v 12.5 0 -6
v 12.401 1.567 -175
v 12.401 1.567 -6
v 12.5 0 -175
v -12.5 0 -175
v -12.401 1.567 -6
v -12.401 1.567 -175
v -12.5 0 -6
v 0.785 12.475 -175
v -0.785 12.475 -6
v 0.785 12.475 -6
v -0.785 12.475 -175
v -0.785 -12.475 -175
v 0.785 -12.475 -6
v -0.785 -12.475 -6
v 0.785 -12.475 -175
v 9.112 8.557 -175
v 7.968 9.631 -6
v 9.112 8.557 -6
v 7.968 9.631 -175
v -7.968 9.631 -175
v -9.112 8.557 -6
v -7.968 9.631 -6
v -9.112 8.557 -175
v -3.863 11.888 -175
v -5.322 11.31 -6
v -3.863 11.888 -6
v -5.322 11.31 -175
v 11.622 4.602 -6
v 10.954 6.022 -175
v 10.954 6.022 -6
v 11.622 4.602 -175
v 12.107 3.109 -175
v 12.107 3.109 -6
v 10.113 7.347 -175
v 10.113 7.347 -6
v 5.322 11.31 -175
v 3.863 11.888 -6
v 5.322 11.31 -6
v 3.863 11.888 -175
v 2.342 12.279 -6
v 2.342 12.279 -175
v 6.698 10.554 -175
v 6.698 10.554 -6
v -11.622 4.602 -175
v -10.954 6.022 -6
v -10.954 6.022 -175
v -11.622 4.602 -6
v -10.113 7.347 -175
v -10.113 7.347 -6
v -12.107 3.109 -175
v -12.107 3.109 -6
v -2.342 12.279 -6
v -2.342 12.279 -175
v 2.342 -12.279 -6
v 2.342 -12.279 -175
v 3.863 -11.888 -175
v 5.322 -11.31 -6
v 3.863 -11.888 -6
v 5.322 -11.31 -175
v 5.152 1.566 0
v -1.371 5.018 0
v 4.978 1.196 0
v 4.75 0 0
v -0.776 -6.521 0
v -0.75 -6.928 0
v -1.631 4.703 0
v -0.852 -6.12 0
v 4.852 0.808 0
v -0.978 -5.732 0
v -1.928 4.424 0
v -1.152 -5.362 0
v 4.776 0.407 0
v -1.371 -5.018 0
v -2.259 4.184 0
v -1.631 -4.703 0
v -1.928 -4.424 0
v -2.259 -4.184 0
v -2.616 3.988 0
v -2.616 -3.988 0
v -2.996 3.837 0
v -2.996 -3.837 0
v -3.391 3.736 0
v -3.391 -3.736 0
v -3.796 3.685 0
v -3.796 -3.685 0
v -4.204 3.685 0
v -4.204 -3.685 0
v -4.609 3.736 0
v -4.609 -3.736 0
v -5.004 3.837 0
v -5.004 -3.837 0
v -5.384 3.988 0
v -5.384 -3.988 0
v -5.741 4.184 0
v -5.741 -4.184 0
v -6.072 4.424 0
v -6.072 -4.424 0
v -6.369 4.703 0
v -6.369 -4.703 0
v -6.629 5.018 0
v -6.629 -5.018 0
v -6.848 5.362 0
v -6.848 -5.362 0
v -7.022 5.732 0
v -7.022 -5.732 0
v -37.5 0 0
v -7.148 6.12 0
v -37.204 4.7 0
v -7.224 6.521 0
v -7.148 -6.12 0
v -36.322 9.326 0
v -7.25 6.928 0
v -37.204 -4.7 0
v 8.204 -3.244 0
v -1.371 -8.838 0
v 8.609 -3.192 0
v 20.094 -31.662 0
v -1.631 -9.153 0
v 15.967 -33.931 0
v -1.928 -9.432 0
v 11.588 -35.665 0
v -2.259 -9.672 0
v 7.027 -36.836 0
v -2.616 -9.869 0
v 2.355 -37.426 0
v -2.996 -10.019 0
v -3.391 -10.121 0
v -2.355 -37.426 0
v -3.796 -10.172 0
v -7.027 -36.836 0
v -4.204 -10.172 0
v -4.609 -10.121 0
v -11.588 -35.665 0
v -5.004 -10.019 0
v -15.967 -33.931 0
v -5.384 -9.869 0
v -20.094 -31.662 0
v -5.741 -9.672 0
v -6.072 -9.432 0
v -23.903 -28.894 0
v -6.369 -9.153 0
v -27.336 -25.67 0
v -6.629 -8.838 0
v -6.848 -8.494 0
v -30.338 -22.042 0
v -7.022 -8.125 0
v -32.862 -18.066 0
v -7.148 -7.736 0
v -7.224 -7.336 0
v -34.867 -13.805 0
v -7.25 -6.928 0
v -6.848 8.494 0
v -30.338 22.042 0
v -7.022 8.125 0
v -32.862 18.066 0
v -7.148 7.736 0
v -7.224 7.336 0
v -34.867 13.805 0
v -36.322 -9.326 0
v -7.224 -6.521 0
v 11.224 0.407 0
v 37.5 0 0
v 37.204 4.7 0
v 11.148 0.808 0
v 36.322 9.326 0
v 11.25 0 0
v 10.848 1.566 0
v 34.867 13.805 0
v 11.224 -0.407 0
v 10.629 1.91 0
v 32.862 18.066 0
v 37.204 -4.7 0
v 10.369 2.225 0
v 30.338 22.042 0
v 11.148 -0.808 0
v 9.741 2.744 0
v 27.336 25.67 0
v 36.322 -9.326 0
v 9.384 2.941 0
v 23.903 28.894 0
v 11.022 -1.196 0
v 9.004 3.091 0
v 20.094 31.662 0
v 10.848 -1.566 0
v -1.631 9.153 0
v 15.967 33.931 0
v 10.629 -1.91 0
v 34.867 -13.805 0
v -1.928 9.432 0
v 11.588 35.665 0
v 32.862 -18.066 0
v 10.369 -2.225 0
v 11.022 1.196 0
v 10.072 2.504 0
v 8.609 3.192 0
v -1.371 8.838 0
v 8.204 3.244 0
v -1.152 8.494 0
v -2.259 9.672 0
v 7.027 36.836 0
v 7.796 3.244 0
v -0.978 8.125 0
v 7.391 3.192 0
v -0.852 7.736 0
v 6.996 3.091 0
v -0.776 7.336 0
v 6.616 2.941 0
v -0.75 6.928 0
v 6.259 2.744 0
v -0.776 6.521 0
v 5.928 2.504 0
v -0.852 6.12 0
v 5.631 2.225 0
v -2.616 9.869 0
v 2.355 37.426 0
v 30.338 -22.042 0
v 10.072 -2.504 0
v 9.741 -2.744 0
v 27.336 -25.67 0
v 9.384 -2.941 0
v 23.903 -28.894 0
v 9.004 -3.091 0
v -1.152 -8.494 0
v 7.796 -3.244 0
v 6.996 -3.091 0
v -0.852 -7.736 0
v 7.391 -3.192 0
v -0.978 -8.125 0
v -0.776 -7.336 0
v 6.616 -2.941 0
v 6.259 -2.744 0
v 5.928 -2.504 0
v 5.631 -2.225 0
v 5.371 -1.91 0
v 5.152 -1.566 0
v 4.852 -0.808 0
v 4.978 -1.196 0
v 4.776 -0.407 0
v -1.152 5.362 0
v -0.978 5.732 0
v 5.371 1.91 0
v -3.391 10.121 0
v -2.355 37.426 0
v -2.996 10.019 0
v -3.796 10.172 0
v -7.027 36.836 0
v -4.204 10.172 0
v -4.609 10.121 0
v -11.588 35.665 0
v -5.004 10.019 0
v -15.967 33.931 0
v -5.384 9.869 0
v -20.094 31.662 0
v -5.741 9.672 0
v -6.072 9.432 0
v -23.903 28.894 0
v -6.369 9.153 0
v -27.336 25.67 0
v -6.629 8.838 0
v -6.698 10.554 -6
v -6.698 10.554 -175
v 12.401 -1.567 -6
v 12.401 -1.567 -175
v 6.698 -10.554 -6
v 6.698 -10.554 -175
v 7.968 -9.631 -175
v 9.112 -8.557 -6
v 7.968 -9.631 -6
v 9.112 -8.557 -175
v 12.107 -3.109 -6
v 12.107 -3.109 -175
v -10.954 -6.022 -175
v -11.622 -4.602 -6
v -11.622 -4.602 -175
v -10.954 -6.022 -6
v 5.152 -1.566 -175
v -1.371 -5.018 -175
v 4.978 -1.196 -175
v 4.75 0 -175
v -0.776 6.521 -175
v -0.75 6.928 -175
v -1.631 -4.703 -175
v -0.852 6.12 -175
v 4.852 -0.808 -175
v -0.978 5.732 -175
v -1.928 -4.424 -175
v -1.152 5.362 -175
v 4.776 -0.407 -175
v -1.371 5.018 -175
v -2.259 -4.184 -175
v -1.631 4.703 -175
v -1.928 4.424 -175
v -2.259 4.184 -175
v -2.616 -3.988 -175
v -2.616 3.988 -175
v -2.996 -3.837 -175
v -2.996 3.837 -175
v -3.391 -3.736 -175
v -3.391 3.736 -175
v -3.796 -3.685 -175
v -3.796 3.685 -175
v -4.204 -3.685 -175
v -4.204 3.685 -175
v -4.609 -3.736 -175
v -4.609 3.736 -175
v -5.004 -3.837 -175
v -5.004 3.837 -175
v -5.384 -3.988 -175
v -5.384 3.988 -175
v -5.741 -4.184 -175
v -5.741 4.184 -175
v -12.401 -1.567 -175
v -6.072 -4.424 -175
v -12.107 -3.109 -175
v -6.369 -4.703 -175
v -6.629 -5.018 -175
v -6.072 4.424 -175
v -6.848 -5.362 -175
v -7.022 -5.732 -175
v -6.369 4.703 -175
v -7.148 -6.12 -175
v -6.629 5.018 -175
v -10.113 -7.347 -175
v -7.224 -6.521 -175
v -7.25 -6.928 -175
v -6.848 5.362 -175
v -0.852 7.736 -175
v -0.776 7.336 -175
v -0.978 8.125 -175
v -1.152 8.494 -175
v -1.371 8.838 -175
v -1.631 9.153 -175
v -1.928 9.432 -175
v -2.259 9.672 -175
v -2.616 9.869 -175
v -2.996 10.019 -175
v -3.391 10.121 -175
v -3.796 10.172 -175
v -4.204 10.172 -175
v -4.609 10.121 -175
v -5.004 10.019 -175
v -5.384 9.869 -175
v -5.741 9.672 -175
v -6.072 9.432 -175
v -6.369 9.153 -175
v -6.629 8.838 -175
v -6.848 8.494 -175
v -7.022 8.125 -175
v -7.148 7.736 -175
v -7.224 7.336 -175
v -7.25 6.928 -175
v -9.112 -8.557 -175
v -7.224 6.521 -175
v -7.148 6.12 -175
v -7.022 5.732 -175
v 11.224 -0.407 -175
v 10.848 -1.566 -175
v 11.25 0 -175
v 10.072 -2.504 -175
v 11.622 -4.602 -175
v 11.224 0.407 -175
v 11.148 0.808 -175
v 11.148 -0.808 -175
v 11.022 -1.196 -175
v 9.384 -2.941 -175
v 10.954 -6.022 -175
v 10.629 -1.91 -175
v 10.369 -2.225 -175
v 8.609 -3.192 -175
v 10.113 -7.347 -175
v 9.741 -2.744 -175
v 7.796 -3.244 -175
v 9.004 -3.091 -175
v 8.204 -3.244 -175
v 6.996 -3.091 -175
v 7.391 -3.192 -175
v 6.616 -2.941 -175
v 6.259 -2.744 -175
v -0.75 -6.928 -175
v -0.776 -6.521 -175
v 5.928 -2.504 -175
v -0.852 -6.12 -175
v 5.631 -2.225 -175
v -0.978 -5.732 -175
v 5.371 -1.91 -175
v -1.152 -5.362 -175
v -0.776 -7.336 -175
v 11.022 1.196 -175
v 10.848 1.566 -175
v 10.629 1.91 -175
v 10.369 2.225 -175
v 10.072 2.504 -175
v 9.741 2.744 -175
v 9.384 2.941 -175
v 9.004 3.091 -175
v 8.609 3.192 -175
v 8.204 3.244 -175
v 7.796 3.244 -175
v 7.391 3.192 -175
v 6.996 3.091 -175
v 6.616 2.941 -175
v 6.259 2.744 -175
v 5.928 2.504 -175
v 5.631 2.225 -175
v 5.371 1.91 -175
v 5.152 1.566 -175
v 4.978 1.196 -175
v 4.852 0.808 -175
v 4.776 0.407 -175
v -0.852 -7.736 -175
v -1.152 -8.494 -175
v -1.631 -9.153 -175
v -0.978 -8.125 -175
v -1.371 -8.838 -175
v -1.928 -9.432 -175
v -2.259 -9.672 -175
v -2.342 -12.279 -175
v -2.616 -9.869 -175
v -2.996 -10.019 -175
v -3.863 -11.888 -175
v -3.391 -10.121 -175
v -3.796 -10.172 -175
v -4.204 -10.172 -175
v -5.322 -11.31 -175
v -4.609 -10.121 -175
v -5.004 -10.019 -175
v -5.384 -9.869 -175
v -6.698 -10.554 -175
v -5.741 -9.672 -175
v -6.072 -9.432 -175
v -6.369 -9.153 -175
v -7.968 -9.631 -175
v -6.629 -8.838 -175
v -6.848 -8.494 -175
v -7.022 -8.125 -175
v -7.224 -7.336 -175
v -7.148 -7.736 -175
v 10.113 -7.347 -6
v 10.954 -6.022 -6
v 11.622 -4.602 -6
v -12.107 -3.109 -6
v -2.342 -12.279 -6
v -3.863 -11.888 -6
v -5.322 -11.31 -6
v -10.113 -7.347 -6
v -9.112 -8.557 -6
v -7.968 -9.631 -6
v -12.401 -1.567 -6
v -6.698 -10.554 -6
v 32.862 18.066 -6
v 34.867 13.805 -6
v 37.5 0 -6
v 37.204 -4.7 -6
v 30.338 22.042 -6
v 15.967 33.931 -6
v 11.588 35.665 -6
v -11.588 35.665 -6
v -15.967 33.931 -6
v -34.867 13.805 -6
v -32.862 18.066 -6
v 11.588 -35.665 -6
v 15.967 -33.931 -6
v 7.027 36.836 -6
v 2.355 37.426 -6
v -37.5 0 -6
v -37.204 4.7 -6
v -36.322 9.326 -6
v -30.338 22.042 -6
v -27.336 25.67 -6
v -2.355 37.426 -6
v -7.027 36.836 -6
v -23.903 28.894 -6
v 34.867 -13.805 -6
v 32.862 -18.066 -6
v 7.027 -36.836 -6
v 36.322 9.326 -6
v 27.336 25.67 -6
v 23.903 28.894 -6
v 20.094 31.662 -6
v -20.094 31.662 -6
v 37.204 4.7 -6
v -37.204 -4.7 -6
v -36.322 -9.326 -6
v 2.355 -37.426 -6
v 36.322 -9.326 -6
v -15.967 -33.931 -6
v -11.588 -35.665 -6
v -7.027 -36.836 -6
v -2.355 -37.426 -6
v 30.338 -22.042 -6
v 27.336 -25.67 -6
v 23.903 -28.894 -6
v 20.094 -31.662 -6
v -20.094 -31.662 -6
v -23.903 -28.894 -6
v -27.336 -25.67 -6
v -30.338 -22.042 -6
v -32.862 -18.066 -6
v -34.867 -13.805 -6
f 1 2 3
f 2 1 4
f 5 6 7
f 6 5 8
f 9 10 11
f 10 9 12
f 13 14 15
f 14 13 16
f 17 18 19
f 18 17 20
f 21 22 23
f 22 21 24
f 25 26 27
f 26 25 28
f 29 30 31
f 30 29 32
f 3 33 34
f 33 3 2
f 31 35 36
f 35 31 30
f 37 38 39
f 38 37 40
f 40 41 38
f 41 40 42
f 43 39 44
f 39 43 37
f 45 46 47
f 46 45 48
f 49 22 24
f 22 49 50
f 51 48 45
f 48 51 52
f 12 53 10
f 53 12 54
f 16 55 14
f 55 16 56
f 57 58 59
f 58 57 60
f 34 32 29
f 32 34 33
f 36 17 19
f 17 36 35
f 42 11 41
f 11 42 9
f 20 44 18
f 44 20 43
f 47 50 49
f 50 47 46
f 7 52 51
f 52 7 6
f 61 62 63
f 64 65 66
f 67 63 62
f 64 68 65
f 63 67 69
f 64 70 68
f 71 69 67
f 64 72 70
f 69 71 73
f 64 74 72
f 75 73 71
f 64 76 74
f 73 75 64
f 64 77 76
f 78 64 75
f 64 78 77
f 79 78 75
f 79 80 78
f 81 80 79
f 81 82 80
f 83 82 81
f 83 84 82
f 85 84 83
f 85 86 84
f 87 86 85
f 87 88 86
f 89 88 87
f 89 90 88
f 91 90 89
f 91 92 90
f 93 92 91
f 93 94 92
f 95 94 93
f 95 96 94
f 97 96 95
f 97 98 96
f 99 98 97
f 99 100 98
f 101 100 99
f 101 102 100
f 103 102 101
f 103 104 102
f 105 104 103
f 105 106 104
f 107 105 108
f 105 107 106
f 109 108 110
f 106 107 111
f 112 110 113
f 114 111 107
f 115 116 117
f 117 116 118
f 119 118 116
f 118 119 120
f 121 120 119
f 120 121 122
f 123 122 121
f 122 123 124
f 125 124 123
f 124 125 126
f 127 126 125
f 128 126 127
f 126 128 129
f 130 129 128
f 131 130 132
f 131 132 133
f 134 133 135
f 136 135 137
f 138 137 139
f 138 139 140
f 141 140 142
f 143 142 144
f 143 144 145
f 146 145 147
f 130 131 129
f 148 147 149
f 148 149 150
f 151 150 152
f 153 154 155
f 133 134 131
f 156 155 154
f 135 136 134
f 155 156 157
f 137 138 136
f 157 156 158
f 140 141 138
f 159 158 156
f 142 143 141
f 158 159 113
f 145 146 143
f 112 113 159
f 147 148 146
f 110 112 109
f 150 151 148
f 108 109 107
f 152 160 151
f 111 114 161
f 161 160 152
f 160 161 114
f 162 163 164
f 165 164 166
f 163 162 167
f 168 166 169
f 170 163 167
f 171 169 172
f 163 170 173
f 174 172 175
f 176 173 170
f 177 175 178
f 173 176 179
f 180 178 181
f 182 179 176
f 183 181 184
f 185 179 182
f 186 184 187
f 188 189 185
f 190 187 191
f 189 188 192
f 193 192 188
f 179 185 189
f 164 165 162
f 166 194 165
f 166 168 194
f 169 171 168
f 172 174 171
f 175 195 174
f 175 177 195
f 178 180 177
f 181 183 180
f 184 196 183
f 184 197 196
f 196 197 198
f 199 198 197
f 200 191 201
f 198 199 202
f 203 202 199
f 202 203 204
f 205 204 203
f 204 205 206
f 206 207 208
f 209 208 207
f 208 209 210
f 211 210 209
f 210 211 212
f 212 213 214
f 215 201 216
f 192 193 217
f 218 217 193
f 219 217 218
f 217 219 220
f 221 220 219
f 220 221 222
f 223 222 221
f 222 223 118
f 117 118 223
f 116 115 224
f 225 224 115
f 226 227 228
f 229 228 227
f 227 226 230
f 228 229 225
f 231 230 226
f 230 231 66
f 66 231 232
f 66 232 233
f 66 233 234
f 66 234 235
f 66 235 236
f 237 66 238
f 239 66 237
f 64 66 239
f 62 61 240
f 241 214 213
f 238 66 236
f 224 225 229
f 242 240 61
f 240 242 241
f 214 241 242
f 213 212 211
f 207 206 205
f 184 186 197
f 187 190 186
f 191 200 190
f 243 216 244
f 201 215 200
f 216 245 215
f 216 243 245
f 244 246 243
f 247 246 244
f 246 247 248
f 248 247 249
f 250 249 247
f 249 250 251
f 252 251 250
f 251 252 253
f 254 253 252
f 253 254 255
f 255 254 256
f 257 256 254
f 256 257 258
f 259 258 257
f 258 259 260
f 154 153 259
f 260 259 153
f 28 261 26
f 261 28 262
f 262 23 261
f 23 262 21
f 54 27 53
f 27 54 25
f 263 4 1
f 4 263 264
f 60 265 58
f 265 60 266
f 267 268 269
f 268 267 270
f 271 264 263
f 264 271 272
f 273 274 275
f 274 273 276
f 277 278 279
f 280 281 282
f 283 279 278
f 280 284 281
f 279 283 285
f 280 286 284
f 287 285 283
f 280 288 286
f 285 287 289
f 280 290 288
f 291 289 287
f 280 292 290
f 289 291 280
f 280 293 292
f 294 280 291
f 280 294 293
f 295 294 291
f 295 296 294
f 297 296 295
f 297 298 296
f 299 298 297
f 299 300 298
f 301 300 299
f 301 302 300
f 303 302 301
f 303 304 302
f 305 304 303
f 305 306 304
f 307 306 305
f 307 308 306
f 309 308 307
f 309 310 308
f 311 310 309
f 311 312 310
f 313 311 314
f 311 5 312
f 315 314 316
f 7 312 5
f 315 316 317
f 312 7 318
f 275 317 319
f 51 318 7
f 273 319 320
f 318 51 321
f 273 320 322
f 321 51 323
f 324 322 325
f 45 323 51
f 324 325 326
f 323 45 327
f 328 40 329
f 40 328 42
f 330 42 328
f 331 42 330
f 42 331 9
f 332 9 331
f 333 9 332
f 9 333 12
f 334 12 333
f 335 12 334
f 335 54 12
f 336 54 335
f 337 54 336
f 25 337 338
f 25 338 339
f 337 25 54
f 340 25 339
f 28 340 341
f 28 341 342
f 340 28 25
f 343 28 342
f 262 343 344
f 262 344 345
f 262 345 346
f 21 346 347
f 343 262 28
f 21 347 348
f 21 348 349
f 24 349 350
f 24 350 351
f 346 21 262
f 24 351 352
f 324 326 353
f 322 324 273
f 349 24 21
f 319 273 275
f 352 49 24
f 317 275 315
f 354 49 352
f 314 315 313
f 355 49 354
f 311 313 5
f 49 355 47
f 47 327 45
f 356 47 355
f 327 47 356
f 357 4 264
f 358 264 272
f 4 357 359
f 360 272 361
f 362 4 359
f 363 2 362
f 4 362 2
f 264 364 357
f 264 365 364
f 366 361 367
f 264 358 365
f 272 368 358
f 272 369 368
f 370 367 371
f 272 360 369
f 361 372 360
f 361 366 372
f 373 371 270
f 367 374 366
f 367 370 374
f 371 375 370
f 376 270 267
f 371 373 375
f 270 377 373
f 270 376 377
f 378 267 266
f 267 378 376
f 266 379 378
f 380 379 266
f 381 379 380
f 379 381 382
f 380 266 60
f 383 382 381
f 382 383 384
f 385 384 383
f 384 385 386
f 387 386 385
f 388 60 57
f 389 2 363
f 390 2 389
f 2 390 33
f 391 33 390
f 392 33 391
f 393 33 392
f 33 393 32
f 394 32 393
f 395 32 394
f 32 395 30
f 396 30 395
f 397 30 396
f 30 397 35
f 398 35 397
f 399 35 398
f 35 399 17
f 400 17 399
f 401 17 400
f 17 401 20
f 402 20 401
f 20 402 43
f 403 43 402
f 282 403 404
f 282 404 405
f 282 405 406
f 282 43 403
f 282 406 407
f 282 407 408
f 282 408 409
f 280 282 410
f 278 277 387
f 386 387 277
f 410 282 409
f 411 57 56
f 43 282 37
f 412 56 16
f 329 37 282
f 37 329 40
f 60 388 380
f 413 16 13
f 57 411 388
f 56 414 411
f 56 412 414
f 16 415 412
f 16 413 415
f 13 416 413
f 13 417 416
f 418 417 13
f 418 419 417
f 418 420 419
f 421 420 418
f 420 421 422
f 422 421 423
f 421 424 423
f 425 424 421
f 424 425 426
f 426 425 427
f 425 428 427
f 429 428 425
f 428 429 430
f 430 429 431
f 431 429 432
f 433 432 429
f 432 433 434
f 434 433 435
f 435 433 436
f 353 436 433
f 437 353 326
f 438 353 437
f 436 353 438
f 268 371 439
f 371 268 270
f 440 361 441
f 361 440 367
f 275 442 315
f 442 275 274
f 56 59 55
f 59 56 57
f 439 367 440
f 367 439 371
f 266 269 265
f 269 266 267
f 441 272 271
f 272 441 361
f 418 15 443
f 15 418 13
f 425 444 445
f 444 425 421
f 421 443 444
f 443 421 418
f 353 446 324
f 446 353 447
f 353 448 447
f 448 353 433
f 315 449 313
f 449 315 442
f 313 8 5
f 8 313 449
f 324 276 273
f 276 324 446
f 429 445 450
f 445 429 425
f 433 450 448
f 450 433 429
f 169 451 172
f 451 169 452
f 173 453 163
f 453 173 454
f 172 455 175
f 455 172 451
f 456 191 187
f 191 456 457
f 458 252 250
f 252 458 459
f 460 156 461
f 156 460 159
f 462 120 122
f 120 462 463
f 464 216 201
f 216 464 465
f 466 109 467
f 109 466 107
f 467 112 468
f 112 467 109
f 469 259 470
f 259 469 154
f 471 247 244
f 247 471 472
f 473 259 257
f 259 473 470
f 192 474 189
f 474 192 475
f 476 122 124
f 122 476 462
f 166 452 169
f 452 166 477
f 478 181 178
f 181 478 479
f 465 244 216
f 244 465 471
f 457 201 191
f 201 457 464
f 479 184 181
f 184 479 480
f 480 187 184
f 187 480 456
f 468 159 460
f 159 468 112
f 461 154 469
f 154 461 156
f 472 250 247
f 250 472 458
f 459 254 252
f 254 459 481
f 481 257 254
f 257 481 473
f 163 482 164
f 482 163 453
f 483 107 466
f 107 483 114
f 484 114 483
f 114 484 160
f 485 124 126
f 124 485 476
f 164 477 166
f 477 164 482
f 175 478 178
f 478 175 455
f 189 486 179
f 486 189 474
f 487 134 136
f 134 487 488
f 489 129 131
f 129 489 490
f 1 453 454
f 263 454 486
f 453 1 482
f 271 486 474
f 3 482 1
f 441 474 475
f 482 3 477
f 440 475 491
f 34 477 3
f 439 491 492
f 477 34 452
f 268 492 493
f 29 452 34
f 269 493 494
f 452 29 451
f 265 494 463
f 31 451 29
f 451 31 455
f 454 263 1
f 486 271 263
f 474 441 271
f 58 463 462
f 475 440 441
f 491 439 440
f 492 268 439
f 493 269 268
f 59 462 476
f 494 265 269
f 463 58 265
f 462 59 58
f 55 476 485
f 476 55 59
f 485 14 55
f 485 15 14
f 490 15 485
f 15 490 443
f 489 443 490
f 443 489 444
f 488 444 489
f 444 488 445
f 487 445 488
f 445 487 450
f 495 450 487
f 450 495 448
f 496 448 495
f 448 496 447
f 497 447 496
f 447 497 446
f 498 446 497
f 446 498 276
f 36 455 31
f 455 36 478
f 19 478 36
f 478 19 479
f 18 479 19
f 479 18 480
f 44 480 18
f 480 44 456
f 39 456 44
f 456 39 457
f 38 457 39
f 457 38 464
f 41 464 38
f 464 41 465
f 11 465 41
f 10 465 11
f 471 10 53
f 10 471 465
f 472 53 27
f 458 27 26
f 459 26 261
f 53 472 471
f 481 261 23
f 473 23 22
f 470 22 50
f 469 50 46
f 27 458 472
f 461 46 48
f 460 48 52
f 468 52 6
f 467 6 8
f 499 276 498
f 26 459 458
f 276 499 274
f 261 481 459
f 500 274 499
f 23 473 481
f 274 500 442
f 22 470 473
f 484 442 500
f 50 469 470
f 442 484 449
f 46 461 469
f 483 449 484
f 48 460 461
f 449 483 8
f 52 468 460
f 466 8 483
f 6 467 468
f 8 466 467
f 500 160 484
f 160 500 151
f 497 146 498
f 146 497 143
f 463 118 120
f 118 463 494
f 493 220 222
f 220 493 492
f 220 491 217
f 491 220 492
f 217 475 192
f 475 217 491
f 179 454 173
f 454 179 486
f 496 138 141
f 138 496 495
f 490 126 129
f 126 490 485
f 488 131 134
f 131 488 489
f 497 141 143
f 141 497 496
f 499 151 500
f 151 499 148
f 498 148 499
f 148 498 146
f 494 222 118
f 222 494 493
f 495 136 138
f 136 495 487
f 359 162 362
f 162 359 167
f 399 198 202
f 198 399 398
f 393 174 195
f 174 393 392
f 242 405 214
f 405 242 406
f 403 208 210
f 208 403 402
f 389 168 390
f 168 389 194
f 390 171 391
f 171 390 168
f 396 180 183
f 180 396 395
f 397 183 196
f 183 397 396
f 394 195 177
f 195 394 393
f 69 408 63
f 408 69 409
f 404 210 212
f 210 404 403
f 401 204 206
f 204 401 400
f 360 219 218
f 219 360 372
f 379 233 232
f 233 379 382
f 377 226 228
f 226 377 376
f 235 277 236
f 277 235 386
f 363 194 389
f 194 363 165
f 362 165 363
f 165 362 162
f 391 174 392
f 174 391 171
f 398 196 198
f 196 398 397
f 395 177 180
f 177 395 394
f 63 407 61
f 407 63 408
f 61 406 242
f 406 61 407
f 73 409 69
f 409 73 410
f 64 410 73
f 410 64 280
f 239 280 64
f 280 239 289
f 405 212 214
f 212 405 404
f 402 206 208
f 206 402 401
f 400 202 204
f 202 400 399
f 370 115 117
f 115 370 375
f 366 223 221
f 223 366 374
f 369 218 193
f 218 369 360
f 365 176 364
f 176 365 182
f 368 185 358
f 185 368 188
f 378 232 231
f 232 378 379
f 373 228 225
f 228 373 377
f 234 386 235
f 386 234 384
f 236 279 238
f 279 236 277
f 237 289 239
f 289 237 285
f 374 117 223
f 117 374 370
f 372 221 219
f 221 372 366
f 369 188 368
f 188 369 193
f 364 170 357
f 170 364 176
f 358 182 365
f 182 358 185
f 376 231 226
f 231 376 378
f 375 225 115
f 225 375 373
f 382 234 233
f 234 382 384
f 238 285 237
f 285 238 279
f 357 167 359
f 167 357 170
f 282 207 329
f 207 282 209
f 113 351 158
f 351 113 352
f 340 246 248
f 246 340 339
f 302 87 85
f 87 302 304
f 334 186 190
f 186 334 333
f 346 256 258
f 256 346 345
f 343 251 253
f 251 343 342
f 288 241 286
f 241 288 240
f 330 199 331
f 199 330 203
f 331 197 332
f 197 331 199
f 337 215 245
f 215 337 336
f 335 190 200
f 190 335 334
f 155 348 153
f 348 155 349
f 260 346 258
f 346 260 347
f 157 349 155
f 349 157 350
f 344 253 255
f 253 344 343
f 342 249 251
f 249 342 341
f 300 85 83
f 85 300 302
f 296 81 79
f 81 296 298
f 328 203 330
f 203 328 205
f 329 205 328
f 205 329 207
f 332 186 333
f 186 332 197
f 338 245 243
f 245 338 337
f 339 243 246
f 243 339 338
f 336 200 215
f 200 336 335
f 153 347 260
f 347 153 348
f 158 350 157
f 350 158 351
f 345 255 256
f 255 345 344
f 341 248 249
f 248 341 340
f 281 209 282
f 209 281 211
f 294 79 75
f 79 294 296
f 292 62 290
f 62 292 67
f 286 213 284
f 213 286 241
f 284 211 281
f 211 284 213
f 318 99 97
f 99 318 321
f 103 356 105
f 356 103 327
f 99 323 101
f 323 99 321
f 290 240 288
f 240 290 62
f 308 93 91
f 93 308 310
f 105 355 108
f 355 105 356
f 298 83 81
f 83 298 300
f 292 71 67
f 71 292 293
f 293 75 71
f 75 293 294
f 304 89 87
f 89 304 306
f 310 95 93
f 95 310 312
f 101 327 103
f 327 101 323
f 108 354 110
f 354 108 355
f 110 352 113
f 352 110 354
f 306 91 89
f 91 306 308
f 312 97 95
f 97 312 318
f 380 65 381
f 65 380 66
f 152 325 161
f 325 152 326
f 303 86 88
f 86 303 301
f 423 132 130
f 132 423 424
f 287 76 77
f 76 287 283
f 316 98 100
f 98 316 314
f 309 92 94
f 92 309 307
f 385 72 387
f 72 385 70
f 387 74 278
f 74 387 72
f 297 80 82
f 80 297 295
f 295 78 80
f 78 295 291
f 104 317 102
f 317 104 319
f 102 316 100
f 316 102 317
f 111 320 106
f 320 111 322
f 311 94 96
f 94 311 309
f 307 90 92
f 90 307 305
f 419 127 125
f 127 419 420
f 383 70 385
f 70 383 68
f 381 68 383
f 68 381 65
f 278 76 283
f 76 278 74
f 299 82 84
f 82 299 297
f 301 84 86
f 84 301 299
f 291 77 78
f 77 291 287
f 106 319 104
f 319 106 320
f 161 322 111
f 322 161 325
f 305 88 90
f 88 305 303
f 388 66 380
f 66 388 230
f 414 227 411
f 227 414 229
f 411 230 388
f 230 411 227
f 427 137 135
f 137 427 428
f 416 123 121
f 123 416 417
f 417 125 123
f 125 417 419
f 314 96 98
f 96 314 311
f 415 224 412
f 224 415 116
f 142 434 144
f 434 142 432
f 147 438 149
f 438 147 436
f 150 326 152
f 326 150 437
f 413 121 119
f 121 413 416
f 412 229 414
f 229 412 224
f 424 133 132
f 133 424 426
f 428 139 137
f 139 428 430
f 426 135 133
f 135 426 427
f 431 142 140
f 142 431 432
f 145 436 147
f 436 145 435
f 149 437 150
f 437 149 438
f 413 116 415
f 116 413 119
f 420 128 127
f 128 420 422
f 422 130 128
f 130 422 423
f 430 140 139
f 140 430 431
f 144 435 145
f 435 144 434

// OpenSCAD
$fn = 50;


difference() {
	union() {
		translate(v = [0, 0, -175.0000000000]) {
			cylinder(h = 175, r = 12.5000000000);
		}
		translate(v = [0, 0, -6.0000000000]) {
			cylinder(h = 6, r = 37.5000000000);
		}
	}
	union() {
		#translate(v = [8.0000000000, 0.0000000000, -175]) {
			cylinder(h = 175, r = 3.2500000000);
		}
		#translate(v = [-4.0000000000, 6.9282032303, -175]) {
			cylinder(h = 175, r = 3.2500000000);
		}
		#translate(v = [-4.0000000000, -6.9282032303, -175]) {
			cylinder(h = 175, r = 3.2500000000);
		}
	}
}
